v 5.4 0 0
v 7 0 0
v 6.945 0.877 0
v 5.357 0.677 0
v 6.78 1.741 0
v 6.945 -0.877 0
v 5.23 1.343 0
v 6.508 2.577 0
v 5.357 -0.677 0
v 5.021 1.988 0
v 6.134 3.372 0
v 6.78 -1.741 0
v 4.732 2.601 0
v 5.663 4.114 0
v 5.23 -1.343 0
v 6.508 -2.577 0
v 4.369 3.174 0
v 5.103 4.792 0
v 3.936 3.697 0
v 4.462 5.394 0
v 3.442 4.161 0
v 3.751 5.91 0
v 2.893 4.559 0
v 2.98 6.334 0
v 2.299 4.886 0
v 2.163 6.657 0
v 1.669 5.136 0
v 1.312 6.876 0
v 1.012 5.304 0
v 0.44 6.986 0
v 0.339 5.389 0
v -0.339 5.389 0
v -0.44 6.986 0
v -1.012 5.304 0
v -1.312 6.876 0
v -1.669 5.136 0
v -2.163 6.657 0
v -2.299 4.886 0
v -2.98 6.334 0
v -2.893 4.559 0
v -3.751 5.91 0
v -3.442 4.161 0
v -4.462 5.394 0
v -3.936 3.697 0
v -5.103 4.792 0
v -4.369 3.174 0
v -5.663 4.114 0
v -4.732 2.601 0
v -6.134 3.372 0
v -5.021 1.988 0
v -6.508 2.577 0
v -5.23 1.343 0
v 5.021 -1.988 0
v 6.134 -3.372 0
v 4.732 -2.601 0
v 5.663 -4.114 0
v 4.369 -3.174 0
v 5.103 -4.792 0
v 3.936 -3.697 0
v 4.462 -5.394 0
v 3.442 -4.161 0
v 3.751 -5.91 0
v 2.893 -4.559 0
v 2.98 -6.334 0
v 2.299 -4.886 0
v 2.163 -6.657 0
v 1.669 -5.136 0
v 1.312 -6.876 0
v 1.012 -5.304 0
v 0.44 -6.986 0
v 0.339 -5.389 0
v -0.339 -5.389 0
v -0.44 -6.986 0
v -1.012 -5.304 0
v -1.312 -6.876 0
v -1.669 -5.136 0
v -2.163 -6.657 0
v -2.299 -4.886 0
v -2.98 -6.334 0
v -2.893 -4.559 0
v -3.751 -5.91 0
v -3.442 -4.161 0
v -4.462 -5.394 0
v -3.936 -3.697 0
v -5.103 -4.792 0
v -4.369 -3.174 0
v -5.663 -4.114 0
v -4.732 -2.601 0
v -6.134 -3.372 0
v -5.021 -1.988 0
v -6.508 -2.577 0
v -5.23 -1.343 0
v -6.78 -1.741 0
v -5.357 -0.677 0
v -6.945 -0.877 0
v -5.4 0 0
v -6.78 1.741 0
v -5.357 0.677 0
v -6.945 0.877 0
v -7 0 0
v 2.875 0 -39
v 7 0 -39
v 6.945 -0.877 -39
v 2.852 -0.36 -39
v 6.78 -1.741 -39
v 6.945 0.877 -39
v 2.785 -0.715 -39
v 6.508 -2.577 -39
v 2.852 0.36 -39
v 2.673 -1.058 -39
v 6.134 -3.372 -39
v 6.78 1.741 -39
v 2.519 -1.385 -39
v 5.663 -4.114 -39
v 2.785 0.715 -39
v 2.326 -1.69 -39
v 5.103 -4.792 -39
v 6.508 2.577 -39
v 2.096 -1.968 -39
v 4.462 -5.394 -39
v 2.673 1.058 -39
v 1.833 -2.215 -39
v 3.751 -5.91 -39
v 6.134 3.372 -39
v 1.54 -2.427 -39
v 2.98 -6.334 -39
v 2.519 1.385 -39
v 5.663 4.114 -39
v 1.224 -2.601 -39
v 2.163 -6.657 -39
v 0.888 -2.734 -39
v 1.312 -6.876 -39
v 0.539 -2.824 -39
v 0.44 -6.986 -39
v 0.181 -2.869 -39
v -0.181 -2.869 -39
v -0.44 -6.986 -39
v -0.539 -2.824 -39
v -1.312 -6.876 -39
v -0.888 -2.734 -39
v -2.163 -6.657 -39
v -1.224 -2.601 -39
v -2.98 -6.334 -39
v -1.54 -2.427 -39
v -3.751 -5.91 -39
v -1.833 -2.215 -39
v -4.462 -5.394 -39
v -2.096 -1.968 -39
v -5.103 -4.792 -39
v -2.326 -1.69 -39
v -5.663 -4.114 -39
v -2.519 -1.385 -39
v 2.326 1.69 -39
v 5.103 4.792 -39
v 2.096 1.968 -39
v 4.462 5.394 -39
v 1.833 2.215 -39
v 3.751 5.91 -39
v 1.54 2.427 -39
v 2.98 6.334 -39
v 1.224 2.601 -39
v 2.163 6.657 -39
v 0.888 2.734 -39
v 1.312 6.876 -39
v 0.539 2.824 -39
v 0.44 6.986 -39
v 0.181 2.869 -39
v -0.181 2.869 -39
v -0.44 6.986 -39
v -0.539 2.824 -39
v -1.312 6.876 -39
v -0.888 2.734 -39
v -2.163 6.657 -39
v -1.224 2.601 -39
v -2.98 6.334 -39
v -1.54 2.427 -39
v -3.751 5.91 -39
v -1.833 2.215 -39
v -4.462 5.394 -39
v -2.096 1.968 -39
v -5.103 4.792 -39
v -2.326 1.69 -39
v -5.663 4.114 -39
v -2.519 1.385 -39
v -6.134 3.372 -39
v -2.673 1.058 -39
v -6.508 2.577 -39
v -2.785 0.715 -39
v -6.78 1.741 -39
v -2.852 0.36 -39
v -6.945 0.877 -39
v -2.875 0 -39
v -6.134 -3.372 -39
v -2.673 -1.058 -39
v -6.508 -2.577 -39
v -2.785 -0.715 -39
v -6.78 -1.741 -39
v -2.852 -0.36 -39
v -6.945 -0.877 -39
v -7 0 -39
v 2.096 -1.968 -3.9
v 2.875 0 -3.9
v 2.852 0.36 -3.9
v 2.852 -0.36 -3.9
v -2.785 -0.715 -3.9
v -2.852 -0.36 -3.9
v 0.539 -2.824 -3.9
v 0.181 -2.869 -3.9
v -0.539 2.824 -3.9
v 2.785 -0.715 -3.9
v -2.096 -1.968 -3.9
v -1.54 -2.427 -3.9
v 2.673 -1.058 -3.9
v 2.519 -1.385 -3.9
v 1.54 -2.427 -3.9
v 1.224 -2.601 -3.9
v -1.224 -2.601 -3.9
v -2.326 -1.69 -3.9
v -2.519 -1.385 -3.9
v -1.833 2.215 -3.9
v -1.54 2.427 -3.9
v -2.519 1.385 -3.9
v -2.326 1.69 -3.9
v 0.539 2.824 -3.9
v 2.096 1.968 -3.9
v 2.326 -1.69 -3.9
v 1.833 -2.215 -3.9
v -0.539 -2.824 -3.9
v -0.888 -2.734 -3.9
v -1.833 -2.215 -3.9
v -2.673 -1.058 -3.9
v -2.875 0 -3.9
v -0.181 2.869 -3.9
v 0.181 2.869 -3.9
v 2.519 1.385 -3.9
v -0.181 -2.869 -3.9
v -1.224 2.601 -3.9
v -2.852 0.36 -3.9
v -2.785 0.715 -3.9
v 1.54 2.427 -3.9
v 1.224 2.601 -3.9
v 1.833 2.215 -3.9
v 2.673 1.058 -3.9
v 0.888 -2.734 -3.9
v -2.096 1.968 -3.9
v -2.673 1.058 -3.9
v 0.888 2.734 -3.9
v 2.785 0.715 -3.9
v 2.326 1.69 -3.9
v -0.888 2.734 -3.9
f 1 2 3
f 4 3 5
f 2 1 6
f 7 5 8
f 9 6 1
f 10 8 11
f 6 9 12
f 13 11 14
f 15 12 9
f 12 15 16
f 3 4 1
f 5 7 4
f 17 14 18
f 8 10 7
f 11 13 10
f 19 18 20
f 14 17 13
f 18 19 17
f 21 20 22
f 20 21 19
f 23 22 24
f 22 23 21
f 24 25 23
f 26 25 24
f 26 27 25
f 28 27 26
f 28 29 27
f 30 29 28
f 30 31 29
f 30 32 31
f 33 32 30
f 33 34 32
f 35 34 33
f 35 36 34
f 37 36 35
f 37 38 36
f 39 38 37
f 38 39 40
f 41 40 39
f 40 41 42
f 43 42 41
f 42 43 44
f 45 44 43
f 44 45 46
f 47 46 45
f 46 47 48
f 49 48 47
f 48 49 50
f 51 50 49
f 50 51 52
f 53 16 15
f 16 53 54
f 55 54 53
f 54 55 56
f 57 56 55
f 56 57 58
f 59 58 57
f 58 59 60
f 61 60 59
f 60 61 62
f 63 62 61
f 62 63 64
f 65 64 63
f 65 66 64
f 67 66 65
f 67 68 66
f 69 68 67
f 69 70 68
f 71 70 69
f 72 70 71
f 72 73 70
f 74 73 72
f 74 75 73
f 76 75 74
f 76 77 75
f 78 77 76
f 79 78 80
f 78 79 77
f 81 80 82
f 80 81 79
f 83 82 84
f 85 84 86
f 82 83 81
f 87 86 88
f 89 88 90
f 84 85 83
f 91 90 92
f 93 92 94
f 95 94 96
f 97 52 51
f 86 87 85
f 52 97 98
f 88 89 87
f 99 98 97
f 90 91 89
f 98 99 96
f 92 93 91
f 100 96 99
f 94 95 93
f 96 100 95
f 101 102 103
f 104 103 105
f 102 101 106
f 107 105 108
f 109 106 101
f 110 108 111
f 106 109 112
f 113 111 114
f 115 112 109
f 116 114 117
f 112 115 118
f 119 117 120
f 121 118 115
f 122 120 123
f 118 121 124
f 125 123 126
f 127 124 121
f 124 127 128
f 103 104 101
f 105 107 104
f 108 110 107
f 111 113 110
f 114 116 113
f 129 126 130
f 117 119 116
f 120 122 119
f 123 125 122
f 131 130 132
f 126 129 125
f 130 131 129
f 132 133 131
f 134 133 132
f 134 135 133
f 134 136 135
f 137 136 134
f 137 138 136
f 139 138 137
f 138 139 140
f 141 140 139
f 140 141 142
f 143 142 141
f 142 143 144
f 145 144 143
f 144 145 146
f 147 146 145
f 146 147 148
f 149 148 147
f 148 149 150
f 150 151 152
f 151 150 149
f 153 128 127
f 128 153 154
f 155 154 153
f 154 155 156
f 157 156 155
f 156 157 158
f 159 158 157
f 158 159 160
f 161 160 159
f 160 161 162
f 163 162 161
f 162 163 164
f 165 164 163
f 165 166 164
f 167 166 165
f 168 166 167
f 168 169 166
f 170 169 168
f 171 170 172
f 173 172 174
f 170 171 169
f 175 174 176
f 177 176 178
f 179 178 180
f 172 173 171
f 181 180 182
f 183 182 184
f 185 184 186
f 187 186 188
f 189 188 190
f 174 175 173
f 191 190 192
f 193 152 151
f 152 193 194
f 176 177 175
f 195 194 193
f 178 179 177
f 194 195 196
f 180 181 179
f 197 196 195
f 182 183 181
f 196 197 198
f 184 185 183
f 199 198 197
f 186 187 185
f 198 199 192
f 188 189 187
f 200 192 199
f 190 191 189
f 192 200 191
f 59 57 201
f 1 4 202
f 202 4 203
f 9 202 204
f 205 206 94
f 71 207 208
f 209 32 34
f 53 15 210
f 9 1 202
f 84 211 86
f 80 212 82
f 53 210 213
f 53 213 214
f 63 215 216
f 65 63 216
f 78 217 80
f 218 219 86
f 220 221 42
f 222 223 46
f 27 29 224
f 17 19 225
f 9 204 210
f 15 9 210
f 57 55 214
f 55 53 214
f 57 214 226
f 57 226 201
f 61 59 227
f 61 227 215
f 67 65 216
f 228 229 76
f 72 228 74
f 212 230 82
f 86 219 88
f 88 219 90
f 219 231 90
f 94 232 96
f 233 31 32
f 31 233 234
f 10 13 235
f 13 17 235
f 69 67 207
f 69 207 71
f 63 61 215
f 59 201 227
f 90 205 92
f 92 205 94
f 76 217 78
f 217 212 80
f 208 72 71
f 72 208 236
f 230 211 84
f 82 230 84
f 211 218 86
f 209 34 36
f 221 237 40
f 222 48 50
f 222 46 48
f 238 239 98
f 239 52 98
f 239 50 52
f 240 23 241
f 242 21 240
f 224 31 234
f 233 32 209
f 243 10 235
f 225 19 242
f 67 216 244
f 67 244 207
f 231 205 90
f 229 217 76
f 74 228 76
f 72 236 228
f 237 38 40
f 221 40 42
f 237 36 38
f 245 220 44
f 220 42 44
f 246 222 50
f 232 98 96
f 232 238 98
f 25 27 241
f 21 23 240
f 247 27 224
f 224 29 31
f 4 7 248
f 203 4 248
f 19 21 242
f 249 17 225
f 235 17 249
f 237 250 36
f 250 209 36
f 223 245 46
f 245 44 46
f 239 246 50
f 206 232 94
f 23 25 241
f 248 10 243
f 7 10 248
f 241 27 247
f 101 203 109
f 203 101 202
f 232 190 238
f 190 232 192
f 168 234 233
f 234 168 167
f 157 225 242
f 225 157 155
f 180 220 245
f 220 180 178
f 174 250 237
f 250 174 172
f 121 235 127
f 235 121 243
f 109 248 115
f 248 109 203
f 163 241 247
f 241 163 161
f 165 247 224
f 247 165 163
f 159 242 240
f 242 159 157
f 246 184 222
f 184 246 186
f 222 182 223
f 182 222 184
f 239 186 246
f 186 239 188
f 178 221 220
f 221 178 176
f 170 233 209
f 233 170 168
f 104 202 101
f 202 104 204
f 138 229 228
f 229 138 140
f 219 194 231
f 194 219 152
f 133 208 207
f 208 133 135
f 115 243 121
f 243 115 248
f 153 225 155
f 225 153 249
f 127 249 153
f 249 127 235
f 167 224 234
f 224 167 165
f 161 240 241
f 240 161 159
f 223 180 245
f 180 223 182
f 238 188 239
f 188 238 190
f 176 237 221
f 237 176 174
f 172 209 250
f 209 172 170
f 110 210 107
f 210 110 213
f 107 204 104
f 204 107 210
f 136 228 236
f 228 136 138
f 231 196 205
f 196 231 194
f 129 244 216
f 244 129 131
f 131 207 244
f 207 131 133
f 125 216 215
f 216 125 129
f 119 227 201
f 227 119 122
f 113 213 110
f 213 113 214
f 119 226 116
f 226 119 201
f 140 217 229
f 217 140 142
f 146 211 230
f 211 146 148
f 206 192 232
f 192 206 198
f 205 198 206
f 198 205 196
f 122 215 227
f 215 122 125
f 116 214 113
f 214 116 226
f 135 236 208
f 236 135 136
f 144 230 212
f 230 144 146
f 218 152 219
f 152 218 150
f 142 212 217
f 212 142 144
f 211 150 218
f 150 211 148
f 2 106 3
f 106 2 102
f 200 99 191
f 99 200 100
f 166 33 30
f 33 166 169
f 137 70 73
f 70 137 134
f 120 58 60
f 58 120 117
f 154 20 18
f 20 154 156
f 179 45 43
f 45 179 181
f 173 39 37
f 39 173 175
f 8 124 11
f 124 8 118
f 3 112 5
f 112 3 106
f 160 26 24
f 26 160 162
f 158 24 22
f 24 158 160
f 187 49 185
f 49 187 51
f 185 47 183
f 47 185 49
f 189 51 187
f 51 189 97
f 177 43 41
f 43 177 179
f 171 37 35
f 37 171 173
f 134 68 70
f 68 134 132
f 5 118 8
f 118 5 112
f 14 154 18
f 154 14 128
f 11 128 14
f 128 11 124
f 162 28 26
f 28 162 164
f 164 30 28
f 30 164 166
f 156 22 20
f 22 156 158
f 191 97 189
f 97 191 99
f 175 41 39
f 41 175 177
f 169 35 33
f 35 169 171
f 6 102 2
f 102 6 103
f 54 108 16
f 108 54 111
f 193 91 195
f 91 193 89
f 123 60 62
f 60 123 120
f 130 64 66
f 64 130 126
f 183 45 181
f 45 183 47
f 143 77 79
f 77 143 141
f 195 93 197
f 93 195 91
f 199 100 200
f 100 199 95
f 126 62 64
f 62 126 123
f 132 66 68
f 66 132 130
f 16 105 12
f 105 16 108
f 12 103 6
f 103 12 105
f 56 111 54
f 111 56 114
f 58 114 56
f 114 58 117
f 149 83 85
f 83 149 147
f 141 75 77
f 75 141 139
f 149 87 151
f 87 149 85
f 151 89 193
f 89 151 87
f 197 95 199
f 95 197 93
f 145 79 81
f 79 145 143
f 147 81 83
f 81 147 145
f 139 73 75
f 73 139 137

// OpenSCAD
$fn = 50;


difference() {
	union() {
		translate(v = [0, 0, -39.0000000000]) {
			cylinder(h = 39, r = 7.0000000000);
		}
	}
	union() {
		translate(v = [0, 0, 0]) {
			rotate(a = [0, 0, 0]) {
				difference() {
					union() {
						#translate(v = [0, 0, -39.0000000000]) {
							cylinder(h = 39, r = 2.6000000000);
						}
						#translate(v = [0, 0, -3.9000000000]) {
							cylinder(h = 3.9000000000, r = 7.0000000000, r1 = 2.8750000000, r2 = 5.4000000000);
						}
						#translate(v = [0, 0, -39.0000000000]) {
							cylinder(h = 39, r = 2.8750000000);
						}
						#translate(v = [0, 0, -39.0000000000]) {
							cylinder(h = 39, r = 2.6000000000);
						}
					}
					union();
				}
			}
		}
	}
}
